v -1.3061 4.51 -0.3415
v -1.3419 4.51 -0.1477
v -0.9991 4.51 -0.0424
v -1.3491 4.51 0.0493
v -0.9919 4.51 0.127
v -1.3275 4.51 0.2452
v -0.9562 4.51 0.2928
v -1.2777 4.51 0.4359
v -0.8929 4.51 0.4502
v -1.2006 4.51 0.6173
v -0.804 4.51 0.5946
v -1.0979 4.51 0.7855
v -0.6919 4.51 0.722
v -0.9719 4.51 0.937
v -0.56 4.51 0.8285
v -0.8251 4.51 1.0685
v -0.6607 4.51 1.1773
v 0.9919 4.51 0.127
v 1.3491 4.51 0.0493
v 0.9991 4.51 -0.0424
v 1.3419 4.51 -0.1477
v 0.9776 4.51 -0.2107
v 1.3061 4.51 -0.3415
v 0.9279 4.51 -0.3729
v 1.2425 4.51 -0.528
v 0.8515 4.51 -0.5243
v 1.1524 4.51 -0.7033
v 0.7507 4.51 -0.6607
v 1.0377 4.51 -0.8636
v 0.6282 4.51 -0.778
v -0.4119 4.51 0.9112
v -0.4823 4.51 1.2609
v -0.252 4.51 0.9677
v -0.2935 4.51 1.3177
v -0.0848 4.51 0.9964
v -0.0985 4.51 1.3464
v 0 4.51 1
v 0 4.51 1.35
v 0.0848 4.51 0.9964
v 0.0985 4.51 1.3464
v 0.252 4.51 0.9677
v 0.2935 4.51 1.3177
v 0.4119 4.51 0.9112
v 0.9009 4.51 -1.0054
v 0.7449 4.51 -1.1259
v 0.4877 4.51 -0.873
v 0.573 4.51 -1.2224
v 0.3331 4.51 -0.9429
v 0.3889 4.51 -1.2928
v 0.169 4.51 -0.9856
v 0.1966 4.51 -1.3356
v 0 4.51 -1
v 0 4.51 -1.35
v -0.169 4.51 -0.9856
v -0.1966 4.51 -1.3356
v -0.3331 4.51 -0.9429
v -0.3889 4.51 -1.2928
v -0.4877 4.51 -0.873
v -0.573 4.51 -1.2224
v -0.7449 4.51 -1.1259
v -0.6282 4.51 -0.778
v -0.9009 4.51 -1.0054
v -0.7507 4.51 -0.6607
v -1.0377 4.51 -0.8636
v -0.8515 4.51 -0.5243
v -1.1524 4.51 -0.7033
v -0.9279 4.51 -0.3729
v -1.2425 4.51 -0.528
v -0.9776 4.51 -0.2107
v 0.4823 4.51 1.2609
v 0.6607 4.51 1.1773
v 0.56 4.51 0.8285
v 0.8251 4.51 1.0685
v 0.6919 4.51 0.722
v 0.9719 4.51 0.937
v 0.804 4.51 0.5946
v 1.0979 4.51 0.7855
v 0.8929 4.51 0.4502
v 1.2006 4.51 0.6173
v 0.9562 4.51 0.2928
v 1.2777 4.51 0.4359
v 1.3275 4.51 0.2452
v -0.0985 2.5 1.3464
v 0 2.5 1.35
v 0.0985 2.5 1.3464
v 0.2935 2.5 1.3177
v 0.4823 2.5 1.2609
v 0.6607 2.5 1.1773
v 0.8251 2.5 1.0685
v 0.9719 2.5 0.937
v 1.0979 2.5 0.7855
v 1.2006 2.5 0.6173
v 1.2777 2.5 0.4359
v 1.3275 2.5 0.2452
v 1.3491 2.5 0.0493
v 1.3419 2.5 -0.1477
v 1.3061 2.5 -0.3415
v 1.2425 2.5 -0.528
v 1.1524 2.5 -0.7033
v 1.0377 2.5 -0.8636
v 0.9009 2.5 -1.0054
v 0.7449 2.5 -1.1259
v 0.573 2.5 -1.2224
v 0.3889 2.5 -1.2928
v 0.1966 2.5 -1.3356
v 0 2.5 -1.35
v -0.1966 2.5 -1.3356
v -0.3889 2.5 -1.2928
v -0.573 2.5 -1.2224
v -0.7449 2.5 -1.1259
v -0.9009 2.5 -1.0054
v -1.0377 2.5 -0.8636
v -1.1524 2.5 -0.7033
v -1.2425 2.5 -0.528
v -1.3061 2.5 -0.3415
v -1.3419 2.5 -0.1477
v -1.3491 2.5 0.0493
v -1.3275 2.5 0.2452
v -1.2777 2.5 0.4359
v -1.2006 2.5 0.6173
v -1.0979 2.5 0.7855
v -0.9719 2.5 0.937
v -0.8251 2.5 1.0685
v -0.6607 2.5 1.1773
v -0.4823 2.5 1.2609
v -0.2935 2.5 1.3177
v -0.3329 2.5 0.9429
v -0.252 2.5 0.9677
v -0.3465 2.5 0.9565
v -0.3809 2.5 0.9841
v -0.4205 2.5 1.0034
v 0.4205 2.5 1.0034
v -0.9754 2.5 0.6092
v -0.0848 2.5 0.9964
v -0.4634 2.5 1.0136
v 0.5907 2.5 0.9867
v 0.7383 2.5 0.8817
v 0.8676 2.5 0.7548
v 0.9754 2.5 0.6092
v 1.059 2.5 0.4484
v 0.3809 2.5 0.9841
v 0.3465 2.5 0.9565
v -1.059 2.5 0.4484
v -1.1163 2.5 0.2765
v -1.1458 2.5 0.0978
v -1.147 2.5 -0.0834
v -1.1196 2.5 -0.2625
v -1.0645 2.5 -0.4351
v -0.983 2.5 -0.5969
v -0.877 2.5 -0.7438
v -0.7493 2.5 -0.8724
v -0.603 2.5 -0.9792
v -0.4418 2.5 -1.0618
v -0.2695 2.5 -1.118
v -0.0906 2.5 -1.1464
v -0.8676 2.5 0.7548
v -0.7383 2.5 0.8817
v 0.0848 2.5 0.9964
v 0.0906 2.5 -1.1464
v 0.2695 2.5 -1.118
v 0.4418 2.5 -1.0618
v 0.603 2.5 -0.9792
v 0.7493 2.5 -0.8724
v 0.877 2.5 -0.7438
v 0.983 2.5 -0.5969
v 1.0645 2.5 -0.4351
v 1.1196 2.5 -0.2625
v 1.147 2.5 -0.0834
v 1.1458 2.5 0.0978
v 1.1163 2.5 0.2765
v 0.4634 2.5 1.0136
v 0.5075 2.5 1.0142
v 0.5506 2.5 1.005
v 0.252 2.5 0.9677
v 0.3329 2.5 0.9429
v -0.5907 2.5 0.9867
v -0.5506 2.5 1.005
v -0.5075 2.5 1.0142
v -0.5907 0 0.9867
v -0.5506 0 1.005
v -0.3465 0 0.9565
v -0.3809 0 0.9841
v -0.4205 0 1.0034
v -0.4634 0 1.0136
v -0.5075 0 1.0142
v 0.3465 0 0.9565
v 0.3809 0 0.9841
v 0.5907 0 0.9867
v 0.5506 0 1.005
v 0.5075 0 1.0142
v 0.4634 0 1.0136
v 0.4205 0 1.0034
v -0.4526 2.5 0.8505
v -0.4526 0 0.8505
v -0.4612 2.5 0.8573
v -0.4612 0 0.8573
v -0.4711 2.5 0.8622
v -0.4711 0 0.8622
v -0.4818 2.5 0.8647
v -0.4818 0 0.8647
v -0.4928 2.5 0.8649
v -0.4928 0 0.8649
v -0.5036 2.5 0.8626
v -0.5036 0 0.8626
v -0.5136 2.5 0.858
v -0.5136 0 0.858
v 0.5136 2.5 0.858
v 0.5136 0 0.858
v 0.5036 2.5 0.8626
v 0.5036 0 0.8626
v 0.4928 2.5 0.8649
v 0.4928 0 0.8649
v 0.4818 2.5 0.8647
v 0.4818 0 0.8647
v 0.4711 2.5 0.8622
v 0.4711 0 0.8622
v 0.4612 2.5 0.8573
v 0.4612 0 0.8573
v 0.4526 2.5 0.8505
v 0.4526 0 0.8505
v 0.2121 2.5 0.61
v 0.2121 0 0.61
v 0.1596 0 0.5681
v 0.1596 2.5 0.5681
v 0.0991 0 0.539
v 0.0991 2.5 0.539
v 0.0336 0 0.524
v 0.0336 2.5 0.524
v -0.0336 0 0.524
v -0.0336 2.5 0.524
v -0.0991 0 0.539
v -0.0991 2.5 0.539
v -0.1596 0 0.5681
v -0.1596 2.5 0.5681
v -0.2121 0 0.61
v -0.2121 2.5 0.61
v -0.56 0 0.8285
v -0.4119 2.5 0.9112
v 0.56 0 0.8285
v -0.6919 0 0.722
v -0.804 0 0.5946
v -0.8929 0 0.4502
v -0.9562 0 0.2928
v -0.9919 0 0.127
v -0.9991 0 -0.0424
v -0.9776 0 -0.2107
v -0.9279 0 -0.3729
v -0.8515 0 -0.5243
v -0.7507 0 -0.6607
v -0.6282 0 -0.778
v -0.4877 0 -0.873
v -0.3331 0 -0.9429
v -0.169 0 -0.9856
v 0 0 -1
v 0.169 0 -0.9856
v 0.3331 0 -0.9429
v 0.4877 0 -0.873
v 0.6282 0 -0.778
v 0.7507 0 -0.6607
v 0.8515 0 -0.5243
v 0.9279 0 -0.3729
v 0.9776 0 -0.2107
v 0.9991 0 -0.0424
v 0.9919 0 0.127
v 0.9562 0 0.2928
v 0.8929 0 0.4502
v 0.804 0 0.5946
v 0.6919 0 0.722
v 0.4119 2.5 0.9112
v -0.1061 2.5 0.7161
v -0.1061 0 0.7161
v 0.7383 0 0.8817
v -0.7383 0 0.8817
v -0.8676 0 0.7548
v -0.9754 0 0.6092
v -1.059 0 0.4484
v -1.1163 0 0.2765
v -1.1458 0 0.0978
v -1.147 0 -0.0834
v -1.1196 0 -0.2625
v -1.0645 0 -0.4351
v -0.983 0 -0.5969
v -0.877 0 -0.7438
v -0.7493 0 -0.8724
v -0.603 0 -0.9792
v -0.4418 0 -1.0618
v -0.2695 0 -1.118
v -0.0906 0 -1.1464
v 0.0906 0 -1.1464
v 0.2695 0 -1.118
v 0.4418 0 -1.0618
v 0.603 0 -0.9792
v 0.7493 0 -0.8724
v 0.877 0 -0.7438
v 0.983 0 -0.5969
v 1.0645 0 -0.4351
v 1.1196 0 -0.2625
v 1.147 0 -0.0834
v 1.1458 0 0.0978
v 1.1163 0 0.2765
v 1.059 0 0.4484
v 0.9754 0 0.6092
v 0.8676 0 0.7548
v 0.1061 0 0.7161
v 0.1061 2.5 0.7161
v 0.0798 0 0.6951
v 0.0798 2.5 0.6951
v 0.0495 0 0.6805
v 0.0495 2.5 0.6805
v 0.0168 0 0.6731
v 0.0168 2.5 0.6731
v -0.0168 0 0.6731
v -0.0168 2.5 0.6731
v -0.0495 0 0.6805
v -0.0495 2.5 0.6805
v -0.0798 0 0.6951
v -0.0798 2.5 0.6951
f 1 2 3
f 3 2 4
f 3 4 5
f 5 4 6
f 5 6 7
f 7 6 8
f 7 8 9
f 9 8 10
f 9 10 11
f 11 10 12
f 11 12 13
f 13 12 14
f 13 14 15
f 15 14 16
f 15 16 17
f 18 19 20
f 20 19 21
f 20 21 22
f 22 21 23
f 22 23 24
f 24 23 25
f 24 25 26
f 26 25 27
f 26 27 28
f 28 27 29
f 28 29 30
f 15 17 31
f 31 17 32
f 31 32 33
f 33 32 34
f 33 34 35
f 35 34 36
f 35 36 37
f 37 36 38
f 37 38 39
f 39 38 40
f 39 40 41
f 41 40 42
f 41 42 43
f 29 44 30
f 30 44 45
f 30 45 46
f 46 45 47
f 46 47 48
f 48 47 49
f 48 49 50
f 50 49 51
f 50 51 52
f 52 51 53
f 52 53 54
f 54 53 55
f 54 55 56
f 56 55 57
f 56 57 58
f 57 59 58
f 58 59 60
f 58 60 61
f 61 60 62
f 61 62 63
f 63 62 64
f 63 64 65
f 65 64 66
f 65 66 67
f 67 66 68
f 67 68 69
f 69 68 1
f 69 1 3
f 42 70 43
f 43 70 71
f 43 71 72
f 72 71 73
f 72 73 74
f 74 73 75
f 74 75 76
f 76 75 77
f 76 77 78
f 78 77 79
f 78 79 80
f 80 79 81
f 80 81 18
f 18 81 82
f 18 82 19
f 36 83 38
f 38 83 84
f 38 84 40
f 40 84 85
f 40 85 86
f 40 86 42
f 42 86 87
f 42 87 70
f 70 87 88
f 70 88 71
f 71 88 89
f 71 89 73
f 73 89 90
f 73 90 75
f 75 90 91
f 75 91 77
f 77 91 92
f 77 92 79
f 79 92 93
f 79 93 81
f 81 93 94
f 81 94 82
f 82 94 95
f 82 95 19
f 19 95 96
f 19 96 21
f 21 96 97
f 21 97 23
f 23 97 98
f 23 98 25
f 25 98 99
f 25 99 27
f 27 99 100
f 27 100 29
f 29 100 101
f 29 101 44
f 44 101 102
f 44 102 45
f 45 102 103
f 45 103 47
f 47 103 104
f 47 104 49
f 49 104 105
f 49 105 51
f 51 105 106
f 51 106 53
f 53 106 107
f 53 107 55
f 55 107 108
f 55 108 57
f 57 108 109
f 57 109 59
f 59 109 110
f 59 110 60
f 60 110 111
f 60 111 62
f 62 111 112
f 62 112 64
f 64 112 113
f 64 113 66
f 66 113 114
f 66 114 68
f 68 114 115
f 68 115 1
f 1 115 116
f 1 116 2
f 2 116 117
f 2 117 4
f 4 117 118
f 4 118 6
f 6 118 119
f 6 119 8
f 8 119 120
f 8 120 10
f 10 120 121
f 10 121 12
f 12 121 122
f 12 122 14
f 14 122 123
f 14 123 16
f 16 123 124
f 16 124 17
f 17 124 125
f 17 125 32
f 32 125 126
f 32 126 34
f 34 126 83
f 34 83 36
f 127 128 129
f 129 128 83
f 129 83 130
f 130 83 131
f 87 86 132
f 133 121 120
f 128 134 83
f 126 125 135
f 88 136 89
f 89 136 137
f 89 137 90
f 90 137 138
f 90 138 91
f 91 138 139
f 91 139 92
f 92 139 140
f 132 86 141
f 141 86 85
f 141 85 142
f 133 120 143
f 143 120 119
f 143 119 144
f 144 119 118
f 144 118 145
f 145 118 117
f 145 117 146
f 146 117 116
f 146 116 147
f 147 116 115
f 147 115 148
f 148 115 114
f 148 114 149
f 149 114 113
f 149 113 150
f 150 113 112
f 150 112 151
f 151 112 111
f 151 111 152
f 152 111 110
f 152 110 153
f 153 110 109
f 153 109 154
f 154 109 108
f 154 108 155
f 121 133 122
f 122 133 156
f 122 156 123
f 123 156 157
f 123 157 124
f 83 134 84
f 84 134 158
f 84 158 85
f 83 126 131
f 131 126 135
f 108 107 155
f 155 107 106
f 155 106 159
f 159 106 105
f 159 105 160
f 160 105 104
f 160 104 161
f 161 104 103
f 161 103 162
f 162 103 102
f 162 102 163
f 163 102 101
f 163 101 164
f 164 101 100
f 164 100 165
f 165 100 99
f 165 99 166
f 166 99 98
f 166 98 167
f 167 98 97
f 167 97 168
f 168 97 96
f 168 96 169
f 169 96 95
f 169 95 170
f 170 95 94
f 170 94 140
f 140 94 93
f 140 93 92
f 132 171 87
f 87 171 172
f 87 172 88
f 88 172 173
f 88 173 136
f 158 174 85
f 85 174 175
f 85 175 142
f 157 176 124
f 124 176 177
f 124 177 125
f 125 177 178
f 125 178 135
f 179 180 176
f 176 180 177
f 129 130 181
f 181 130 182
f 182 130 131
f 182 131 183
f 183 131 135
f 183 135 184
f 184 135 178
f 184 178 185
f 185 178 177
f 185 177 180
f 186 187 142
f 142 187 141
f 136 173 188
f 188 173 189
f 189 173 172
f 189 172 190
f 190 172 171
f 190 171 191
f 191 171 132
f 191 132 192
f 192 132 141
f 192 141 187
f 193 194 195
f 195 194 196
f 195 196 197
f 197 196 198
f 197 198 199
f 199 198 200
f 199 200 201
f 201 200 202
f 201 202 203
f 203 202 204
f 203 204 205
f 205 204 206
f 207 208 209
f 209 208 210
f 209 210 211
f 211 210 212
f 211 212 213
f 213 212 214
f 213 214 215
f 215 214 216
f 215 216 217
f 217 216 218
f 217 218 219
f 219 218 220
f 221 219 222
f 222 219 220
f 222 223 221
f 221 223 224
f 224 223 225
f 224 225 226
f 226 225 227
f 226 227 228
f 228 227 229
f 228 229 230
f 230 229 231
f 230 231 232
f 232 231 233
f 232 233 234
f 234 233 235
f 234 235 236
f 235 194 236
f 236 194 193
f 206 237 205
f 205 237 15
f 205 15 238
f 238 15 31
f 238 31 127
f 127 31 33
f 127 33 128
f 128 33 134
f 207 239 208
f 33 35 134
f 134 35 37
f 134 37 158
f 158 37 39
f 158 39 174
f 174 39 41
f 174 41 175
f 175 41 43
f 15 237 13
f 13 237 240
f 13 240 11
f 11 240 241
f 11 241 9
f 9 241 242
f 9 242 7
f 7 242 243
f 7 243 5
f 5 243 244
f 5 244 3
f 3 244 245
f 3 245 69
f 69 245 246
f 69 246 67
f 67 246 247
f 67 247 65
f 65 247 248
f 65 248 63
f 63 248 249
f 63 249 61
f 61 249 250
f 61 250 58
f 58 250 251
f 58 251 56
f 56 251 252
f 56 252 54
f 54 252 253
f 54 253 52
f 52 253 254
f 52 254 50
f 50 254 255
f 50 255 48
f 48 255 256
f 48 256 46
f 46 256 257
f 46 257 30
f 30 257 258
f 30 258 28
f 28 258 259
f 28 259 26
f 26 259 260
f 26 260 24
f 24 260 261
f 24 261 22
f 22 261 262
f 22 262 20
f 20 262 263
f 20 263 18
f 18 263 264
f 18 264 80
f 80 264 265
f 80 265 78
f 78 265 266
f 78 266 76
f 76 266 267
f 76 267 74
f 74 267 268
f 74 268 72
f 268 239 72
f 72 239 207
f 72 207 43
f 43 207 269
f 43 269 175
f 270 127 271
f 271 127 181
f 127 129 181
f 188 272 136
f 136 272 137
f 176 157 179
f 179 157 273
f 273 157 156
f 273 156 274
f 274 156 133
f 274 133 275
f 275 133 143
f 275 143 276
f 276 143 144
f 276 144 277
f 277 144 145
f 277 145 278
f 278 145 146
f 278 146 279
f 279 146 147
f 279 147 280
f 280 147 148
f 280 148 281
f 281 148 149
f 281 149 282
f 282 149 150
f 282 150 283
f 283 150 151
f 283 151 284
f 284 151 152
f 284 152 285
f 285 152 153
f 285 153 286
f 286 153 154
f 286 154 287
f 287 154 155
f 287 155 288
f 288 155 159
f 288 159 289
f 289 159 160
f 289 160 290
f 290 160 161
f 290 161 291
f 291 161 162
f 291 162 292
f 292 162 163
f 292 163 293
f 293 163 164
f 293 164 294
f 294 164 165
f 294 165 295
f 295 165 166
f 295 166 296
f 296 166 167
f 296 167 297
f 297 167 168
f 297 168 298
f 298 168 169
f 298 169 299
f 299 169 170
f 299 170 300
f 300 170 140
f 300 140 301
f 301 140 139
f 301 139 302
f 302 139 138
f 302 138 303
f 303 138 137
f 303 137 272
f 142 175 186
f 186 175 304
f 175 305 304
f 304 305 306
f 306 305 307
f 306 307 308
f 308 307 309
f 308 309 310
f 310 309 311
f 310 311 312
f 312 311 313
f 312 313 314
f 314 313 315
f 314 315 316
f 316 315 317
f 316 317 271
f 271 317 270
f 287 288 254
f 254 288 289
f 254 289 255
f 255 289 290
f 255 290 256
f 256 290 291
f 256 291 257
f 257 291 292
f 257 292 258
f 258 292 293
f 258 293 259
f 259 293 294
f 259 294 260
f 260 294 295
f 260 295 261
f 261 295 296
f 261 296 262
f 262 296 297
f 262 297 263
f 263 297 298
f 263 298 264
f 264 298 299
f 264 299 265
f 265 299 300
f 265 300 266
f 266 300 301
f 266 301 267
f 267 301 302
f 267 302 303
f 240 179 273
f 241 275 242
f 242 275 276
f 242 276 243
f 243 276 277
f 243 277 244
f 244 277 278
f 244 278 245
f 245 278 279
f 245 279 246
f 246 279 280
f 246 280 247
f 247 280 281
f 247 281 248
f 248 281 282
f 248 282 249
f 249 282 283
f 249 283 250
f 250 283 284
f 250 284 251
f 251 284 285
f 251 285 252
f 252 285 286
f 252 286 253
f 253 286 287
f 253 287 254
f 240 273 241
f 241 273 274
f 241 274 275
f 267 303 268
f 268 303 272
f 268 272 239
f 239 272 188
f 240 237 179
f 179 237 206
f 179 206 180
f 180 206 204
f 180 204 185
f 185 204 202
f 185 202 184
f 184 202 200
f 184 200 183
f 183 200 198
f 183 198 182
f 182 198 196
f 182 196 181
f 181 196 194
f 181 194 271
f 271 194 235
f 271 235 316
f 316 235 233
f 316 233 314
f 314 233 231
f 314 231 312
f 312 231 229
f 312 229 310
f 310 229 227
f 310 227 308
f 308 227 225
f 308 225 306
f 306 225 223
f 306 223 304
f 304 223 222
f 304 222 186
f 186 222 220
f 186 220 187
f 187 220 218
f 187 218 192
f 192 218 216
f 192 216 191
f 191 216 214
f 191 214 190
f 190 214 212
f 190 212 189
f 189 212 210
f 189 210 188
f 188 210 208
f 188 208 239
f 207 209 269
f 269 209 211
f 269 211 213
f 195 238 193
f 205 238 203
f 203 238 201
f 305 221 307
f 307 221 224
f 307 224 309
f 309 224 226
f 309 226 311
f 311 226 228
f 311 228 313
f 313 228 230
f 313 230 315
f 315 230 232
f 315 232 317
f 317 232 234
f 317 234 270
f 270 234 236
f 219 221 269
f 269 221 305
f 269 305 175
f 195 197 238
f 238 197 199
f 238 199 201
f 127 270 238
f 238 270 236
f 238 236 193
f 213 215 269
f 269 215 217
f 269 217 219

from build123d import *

# Parameters (mm, degrees)
BOSS_EXTRUDE1_DEPTH = 2.5
FILLET1_R           = 0.05
FILLET2_R           = 0.2
SKETCH2_R           = 1.35
SKETCH2_R_2         = 1
BOSS_EXTRUDE2_DEPTH = 2.01


with BuildPart() as part:
    # Sketch1 → Boss-Extrude1 (new body)
    with BuildSketch(Plane(origin=(0, 0, 0), x_dir=(1, 0, 0), z_dir=(0, 1, 0))):
        with BuildLine():
            Line((-0.448807004, -1.058807004), (-0.106066017, -0.716066017))
            ThreePointArc((-0.106066017, -0.716066017), (0, -0.672132034), (0.106066017, -0.716066017))
            Line((0.106066017, -0.716066017), (0.448807004, -1.058807004))
            ThreePointArc((0.448807004, -1.058807004), (0, 1.15), (-0.448807004, -1.058807004))
        make_face()
        with BuildLine():
            Line((-0.479612457, -0.877480422), (-0.212132034, -0.61))
            ThreePointArc((-0.212132034, -0.61), (0, -0.522132034), (0.212132034, -0.61))
            Line((0.212132034, -0.61), (0.479612457, -0.877480422))
            ThreePointArc((0.479612457, -0.877480422), (0, 1), (-0.479612457, -0.877480422))
        make_face(mode=Mode.SUBTRACT)
    extrude(amount=BOSS_EXTRUDE1_DEPTH)

    # Fillet1
    fillet1_edges = [part.edges().sort_by_distance(p)[0] for p in [
        (0.479612457, 1.25, 0.877480422),
        (-0.479612457, 1.25, 0.877480422),
    ]]
    fillet(fillet1_edges, radius=FILLET1_R)

    # Fillet2
    fillet2_edges = [part.edges().sort_by_distance(p)[0] for p in [
        (-0.448807004, 1.25, 1.058807004),
        (0.448807004, 1.25, 1.058807004),
    ]]
    fillet(fillet2_edges, radius=FILLET2_R)

    # Sketch2 → Boss-Extrude2 (add)
    with BuildSketch(Plane(origin=(0, 2.5, 0), x_dir=(1, 0, 0), z_dir=(0, 1, 0))):
        Circle(SKETCH2_R)
        Circle(SKETCH2_R_2, mode=Mode.SUBTRACT)
    extrude(amount=BOSS_EXTRUDE2_DEPTH)


solid = part.part
